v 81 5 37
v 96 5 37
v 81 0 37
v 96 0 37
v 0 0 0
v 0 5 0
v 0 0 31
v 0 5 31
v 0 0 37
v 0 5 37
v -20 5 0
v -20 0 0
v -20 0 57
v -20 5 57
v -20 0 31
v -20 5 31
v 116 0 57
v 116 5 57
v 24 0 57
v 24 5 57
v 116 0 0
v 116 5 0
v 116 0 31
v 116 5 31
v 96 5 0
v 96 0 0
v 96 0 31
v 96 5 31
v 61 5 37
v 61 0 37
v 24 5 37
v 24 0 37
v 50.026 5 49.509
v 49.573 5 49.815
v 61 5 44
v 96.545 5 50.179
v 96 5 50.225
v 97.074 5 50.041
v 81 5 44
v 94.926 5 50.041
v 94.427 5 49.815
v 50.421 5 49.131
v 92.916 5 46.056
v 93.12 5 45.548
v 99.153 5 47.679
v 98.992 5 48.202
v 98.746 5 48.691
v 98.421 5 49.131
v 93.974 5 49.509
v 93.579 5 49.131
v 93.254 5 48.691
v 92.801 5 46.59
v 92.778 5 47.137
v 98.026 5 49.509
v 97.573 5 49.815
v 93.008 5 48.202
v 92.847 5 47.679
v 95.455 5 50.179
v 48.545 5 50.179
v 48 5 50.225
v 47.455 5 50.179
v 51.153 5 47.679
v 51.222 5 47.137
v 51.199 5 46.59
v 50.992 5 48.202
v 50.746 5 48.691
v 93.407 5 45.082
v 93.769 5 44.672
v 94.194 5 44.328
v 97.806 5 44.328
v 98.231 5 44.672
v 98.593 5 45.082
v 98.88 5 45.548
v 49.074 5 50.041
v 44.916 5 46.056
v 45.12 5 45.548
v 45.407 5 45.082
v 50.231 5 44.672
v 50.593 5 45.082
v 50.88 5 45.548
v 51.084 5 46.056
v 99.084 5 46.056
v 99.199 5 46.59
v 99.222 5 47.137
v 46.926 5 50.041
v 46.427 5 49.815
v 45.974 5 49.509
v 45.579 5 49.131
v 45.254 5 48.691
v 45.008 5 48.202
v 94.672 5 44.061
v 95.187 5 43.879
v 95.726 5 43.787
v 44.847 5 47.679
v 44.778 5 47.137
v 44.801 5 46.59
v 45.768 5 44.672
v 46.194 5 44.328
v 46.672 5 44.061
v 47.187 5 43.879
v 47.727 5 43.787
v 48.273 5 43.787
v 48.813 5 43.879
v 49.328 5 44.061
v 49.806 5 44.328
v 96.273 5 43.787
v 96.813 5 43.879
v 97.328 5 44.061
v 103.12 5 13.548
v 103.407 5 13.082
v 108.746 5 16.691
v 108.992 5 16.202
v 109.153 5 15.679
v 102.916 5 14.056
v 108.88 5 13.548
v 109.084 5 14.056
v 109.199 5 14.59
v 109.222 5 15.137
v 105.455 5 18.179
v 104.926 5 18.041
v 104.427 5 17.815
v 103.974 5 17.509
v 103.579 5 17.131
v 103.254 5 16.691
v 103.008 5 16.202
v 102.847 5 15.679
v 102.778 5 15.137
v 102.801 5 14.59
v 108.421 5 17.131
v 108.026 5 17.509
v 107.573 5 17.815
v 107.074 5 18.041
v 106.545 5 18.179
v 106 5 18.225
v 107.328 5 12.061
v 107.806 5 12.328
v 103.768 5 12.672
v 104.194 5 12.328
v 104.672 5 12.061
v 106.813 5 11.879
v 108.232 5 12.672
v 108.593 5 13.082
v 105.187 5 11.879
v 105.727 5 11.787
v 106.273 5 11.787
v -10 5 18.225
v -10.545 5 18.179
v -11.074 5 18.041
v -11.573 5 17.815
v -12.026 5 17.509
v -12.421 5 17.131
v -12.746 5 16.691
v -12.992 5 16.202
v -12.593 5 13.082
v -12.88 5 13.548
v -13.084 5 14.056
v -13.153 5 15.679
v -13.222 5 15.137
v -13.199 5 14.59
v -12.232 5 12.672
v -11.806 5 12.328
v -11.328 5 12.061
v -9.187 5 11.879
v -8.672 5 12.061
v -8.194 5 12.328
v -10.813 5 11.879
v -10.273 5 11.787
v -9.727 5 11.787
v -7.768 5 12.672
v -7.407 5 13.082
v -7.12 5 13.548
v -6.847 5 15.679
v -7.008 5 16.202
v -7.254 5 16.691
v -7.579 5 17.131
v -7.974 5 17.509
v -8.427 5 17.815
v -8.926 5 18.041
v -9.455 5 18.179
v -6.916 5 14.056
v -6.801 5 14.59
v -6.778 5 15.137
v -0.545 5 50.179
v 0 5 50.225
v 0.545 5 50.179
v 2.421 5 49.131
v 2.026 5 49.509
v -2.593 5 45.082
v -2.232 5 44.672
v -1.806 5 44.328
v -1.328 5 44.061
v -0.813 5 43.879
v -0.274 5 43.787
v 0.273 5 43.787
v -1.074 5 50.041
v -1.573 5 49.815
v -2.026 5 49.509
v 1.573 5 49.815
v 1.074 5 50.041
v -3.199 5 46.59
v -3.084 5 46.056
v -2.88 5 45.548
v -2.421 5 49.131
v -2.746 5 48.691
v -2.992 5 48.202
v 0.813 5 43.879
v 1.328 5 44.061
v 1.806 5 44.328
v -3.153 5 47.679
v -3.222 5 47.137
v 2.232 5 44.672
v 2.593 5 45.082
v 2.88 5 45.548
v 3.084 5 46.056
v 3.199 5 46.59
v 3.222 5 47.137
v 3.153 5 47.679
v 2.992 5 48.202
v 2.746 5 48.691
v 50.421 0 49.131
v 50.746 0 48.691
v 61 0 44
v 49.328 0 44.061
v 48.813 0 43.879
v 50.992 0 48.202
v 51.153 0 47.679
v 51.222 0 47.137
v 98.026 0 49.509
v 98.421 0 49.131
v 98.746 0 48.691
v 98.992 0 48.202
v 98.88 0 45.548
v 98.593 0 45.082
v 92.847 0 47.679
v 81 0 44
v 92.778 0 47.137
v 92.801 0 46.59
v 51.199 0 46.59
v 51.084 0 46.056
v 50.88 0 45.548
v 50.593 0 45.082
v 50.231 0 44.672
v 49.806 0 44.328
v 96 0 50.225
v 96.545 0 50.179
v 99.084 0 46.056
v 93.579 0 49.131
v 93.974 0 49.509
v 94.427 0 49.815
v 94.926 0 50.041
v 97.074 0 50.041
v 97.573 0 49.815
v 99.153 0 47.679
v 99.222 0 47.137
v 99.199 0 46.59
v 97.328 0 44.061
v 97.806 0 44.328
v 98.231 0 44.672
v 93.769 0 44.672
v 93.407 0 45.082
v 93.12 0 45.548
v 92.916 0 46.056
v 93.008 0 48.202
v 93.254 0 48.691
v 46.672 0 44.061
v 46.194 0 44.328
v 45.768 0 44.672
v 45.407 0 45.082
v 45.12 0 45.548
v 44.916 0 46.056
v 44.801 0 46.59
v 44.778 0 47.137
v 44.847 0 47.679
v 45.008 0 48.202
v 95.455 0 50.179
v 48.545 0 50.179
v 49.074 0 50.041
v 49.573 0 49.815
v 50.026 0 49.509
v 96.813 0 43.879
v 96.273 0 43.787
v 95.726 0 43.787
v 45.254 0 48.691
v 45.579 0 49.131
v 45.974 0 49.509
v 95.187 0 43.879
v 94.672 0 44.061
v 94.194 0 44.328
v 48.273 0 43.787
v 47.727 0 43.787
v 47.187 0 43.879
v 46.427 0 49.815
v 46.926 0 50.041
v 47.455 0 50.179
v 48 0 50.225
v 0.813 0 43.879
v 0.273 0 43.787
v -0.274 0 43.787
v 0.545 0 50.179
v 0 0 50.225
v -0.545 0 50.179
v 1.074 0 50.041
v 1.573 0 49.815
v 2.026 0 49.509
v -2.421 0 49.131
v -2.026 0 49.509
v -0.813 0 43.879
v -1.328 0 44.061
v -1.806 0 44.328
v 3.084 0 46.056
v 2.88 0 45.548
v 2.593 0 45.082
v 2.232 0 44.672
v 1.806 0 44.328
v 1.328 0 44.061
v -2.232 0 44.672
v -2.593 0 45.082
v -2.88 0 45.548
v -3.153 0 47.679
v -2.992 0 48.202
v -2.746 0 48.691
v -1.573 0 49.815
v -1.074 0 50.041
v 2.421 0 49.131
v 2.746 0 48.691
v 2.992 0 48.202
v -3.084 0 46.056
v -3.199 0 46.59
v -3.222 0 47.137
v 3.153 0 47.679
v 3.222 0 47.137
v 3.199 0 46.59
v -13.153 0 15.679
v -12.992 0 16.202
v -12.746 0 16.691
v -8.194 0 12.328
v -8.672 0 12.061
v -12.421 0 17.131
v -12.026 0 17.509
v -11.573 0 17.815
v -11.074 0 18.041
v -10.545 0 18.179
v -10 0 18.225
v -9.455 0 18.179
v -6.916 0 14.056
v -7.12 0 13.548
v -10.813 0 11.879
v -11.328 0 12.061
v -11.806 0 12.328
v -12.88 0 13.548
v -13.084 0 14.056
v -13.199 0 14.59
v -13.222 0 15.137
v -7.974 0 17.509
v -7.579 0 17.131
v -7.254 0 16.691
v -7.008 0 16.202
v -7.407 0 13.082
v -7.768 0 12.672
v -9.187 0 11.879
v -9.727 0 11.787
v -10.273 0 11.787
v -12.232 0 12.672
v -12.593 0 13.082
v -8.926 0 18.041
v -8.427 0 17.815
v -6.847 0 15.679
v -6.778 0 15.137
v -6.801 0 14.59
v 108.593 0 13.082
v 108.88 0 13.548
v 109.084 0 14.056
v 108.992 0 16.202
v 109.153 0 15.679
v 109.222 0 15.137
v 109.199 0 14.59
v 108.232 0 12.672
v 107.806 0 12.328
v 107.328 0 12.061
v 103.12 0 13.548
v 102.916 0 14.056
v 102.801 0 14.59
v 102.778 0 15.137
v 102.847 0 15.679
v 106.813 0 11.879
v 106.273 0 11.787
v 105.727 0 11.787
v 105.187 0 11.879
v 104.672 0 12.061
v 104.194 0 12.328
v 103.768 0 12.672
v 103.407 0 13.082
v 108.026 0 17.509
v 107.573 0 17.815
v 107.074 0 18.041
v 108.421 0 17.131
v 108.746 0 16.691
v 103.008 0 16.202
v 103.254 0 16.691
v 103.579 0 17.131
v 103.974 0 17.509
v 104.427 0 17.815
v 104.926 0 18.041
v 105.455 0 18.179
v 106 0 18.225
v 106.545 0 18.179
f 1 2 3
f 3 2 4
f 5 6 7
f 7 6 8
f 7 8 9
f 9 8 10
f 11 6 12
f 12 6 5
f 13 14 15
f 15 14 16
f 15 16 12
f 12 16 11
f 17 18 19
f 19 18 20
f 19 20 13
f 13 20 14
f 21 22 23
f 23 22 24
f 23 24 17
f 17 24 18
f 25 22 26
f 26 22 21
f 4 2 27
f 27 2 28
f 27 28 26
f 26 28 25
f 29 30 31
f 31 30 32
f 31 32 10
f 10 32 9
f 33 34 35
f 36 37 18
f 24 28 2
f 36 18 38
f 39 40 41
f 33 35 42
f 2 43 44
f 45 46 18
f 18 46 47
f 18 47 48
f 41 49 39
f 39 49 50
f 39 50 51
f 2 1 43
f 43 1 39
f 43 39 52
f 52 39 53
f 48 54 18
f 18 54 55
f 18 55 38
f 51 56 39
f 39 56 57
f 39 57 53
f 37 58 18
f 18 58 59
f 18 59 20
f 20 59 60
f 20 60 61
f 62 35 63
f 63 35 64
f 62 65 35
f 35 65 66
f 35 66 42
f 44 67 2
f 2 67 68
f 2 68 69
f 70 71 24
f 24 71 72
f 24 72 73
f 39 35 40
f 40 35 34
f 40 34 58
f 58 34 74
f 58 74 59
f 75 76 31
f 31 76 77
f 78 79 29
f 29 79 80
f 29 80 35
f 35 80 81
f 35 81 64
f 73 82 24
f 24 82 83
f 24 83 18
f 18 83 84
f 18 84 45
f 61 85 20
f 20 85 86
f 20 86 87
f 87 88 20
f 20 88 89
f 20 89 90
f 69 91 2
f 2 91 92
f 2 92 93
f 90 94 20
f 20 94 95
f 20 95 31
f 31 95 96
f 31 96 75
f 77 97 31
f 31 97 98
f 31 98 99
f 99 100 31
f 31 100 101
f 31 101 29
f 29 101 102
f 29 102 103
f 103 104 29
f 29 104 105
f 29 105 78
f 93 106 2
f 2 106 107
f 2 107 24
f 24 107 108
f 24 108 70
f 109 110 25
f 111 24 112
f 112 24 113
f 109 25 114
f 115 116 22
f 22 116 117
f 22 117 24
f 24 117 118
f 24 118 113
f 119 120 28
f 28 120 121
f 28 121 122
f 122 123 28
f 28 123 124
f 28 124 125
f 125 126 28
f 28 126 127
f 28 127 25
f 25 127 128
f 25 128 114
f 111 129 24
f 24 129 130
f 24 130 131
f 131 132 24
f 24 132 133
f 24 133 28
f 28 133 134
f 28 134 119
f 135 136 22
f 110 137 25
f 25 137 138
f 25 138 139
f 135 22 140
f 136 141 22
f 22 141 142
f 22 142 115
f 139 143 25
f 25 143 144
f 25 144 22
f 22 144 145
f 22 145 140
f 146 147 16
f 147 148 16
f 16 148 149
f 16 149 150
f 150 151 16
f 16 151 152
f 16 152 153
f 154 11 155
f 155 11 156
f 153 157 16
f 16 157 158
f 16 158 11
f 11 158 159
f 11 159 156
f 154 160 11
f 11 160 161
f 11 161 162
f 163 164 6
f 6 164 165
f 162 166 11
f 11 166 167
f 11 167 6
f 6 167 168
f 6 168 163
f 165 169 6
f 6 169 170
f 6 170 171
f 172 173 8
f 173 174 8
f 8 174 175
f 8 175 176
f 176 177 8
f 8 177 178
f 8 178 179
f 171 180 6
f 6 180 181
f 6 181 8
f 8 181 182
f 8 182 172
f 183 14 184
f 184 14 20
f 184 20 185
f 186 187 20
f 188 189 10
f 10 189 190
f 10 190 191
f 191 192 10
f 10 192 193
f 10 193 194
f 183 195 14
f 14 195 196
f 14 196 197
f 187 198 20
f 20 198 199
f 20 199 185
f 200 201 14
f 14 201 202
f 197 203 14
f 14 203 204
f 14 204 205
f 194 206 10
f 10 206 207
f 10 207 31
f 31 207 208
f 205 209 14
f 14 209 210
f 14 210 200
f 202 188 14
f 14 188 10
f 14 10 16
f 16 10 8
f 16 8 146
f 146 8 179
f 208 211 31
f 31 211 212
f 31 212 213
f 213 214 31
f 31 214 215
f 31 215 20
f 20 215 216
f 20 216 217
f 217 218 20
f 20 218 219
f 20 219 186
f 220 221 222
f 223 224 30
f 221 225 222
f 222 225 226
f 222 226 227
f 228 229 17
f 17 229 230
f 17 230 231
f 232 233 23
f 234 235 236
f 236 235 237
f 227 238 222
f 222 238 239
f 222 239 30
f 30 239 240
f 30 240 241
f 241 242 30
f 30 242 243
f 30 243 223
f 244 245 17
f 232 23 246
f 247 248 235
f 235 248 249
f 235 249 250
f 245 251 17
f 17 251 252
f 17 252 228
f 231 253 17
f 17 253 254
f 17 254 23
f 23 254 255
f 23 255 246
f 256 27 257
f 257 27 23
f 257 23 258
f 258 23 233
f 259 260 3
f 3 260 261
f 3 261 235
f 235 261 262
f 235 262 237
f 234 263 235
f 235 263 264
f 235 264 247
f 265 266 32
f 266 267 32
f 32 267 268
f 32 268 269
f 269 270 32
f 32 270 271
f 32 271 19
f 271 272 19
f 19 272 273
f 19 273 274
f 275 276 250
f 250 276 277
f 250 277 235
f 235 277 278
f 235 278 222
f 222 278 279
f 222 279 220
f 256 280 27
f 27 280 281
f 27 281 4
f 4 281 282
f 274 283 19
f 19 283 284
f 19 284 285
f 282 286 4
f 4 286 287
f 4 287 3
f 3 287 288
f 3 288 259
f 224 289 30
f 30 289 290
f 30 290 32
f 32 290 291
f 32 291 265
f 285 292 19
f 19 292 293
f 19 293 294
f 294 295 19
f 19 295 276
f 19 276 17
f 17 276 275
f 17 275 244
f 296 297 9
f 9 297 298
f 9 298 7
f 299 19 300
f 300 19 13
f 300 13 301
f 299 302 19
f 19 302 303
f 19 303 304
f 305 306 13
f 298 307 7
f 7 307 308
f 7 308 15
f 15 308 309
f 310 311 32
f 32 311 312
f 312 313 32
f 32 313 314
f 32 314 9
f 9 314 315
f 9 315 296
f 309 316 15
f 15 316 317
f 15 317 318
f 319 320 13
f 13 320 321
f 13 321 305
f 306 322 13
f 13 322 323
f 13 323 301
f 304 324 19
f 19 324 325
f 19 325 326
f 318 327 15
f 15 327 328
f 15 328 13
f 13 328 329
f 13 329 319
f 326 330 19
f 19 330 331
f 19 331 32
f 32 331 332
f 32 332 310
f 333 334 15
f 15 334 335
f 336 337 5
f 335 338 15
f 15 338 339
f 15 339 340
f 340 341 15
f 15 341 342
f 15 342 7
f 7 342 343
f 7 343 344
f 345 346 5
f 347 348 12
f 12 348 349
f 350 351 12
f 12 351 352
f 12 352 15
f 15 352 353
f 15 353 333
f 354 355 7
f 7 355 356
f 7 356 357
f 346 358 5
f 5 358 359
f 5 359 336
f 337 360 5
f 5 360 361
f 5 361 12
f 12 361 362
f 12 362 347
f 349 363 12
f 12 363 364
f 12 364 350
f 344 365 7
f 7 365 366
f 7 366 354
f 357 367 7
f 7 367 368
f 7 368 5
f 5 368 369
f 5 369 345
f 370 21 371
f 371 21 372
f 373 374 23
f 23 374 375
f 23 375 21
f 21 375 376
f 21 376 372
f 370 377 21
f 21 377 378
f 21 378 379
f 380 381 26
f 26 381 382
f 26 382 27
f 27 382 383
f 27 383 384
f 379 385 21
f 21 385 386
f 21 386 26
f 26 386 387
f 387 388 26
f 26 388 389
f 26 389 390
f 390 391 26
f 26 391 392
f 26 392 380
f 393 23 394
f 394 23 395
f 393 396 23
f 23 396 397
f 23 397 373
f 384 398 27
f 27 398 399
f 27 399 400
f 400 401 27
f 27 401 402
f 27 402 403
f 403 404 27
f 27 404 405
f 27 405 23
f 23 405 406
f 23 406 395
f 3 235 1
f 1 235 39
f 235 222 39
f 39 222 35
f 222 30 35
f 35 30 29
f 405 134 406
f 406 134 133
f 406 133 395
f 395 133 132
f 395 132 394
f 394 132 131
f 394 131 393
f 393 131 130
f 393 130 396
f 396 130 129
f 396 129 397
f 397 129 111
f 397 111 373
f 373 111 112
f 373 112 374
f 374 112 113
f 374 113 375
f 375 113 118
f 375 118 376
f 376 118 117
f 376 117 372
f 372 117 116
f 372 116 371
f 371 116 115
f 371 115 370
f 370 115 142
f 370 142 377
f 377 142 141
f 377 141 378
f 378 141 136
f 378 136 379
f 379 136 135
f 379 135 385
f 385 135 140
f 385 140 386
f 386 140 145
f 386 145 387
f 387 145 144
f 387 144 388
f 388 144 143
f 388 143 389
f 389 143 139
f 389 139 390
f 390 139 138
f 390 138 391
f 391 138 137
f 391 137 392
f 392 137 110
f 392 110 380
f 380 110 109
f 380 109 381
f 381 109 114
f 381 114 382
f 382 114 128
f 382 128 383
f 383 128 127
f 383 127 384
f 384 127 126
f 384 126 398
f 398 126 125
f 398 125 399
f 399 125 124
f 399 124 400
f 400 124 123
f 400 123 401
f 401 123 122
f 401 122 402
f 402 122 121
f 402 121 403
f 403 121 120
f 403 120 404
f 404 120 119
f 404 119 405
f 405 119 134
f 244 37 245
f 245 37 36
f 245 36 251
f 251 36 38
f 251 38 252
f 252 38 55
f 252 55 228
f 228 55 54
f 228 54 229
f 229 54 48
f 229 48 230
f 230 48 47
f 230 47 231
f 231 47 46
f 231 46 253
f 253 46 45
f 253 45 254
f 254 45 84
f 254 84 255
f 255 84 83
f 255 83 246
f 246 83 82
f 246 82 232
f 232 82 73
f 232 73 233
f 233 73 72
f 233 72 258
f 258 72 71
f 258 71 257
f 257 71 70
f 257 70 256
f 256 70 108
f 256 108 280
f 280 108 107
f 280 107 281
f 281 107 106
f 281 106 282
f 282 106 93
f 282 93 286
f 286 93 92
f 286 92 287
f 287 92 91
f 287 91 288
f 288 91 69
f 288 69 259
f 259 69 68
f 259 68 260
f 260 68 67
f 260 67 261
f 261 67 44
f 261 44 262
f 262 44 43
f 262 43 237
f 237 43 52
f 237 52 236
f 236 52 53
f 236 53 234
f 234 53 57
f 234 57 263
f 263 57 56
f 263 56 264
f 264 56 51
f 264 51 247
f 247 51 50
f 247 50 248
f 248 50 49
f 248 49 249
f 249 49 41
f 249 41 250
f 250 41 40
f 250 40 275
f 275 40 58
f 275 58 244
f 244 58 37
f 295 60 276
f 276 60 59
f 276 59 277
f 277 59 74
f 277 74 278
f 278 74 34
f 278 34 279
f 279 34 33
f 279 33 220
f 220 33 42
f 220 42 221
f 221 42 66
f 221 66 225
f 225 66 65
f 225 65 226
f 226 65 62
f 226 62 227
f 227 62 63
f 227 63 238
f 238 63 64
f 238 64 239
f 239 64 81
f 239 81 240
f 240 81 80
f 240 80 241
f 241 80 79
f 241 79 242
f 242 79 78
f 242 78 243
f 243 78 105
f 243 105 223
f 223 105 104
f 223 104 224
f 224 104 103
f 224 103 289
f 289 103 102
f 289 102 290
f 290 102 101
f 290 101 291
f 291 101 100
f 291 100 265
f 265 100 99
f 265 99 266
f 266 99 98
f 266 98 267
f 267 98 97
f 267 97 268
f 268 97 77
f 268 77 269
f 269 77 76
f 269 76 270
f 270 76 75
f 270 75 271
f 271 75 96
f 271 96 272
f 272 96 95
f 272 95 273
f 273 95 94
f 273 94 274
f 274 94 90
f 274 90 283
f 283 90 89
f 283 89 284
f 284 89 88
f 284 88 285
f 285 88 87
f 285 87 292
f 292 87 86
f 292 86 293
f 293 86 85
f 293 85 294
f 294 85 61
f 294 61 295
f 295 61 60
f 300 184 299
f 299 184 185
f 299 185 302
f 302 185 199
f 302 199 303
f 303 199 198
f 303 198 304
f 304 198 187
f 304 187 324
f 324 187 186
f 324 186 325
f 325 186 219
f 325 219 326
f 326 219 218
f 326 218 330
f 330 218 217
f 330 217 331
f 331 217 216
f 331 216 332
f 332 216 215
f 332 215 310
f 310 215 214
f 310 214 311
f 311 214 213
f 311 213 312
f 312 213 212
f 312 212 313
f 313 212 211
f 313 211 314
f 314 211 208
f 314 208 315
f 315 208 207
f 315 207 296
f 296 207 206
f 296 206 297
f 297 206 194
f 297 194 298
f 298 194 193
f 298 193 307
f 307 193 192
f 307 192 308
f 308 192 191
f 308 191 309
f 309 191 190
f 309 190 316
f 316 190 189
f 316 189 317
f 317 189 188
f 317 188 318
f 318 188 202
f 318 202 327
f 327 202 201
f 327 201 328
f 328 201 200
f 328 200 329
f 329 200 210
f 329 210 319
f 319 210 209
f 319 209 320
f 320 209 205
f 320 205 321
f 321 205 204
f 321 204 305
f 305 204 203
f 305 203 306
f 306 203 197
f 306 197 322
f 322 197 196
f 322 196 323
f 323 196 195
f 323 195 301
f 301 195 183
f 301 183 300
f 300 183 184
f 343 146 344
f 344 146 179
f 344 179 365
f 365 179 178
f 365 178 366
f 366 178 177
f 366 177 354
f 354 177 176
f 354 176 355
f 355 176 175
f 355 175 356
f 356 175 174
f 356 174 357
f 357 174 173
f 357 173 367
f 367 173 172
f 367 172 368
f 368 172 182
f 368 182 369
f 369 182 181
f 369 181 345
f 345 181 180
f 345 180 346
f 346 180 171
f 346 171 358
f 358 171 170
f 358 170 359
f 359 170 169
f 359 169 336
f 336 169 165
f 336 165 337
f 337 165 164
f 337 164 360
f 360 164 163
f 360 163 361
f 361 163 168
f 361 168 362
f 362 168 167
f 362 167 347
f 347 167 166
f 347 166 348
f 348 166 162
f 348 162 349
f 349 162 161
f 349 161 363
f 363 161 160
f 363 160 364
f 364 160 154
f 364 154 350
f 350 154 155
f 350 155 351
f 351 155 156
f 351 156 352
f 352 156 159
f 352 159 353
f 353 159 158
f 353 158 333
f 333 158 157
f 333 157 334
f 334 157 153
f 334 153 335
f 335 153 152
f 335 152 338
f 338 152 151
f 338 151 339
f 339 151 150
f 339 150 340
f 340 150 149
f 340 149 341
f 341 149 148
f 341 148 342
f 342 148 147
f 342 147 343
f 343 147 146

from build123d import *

# Parameters (mm, degrees)
BOSS_EXTRUDE1_DEPTH = 5
SKETCH3_W           = 20
SKETCH3_H           = 7
CUT_EXTRUDE1_DEPTH  = 130.344501236
SKETCH4_R           = 3.225
CUT_EXTRUDE2_DEPTH  = 130.344501236


with BuildPart() as part:
    # Sketch2 → Boss-Extrude1 (new body)
    with BuildSketch(Plane(origin=(0, 0, 0), x_dir=(1, 0, 0), z_dir=(0, 1, 0))):
        Polygon((0, 0), (-20, 0), (-20, -57), (116, -57), (116, 0), (96, 0), (96, -37), (0, -37), align=None)
    extrude(amount=BOSS_EXTRUDE1_DEPTH)

    # Sketch3 → Cut-Extrude1 (cut, through all)
    with BuildSketch(Plane(origin=(0, 5, 0), x_dir=(1, 0, 0), z_dir=(0, 1, 0))):
        with Locations((71, -40.5)):
            Rectangle(SKETCH3_W, SKETCH3_H)
    extrude(amount=-CUT_EXTRUDE1_DEPTH, mode=Mode.SUBTRACT)

    # Sketch4 → Cut-Extrude2 (cut, through all)
    with BuildSketch(Plane(origin=(0, 5, 0), x_dir=(1, 0, 0), z_dir=(0, 1, 0))):
        with Locations(Location((-10, -15, 0), (0, 0, 270))):
            Circle(SKETCH4_R)
        with Locations(Location((0, -47, 0), (0, 0, 270))):
            Circle(SKETCH4_R)
        with Locations(Location((48, -47, 0), (0, 0, 270))):
            Circle(SKETCH4_R)
        with Locations(Location((96, -47, 0), (0, 0, 270))):
            Circle(SKETCH4_R)
        with Locations(Location((106, -15, 0), (0, 0, 270))):
            Circle(SKETCH4_R)
    extrude(amount=-CUT_EXTRUDE2_DEPTH, mode=Mode.SUBTRACT)


solid = part.part
